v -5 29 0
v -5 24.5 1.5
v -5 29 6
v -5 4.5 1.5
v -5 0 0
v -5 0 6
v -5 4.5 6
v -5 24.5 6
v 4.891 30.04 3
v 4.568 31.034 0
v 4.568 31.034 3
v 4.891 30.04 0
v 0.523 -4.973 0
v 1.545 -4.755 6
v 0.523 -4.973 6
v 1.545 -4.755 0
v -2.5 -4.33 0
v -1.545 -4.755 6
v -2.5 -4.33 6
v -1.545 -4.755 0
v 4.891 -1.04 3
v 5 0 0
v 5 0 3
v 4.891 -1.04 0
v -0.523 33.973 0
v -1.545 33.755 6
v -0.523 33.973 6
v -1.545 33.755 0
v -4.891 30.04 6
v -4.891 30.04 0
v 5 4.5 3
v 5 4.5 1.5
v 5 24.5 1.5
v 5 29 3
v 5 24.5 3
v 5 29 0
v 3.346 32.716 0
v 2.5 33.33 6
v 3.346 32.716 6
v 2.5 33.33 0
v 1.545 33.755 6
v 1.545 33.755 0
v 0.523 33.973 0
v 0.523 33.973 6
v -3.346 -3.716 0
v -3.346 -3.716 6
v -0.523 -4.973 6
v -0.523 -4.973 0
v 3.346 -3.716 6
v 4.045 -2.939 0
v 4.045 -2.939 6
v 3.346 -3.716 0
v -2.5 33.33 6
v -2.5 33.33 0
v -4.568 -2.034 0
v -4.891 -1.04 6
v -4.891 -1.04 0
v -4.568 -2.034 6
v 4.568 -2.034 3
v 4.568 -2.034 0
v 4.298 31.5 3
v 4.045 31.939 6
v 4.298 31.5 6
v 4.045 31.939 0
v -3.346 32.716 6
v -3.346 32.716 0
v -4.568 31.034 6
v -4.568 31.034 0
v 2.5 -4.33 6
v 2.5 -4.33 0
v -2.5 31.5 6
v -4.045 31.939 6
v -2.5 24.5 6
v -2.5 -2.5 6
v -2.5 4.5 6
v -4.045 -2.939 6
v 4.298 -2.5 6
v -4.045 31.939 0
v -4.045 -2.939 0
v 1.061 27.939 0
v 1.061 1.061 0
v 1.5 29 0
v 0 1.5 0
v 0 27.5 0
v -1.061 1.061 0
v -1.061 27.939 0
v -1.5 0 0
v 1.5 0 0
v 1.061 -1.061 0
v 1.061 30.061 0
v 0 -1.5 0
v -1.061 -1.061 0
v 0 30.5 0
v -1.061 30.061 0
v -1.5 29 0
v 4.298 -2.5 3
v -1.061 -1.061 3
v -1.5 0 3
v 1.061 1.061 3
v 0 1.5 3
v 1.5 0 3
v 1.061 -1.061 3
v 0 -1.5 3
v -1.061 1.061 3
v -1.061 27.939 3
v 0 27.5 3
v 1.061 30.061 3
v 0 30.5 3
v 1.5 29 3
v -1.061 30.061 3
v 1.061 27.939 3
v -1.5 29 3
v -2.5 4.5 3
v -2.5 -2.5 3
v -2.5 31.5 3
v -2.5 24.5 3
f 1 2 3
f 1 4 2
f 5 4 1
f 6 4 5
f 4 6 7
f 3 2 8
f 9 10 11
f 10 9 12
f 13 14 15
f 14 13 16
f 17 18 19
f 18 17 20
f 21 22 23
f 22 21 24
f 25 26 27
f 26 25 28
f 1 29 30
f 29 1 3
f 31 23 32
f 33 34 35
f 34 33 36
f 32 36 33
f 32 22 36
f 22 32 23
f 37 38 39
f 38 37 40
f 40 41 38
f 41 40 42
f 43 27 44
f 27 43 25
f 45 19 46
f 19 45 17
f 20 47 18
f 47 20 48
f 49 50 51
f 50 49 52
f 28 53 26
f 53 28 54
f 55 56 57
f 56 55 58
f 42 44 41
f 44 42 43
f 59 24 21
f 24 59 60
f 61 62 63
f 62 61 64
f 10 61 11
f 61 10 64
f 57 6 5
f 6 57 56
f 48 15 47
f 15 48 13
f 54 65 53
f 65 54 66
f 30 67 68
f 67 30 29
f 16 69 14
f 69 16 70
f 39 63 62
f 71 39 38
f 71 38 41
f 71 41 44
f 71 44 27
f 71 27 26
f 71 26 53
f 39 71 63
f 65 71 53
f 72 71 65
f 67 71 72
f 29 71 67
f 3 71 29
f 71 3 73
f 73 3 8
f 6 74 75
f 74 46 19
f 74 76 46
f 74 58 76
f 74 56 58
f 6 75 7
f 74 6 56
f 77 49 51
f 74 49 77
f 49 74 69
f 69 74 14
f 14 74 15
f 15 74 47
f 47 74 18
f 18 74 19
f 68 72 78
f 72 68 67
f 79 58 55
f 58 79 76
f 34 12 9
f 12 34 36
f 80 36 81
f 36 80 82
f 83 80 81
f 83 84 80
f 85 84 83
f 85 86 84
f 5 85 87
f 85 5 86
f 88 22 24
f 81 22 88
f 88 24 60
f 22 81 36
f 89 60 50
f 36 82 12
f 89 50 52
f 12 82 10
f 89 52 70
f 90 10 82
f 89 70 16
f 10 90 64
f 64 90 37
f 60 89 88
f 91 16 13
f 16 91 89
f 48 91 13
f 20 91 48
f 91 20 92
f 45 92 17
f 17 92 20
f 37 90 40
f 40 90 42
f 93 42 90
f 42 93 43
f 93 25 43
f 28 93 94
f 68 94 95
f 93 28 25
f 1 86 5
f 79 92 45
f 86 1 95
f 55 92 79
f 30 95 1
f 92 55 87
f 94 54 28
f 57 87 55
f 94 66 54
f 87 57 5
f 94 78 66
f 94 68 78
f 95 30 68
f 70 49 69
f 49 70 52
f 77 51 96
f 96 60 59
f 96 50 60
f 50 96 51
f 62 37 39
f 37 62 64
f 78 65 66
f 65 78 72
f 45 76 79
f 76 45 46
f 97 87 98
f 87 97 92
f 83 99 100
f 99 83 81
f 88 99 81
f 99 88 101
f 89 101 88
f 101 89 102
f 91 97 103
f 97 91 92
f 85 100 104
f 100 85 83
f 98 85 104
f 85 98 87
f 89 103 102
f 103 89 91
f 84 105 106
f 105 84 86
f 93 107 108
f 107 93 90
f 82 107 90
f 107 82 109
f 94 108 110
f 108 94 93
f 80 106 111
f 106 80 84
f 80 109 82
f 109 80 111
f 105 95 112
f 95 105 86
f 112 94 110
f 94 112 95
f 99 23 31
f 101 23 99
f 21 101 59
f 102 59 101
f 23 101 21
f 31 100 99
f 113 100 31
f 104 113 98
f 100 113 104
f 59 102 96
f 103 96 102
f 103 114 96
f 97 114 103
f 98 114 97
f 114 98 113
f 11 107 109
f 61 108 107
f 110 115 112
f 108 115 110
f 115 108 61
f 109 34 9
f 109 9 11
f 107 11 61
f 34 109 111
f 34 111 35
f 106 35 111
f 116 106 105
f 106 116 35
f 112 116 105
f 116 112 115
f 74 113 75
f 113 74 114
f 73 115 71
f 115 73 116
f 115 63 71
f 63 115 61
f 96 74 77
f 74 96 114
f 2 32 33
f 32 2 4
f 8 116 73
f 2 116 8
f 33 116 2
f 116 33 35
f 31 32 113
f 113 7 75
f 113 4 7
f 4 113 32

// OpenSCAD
oled_back();

module oled_back() {
    led_t=3;
    spt_t=6;
    difference() {
        hull() {
            cylinder(spt_t,10/2,10/2,$fn=30);
            translate([0,29,0]) cylinder(spt_t,10/2,10/2,$fn=30);
        }
        translate([0,0,-0.5])cylinder(spt_t+1,3/2,3/2,$fn=8);
        translate([0,29,-0.5]) cylinder(spt_t+1,3/2,3/2,$fn=8);
        
        translate([-2.5,-2.5,spt_t-led_t]) cube(34);
        translate([-2.5-3.5,-2.5+7,spt_t-led_t-1.5]) cube(20);
    }
}


module oled_front() {
    hw=33.8-3;
    hh=32-3;
    
    translate([-hw/2,0,0]) union() {
        cylinder(h=20, r=3.2/2, center=true, $fn=20);
        translate([hw, hh, 0]) cylinder(h=20, r=3.2/2, center=true, $fn=20);
        translate([hw, 0, 0]) cylinder(h=20, r=3.2/2, center=true, $fn=20);
        translate([0, hh, 0]) cylinder(h=20, r=3.2/2, center=true, $fn=20);
    }
    translate([-32/2,4,-10]) cube([32,17,20]);
}

module usb_c(){
    rotate([0,90,0]) union() {
        cube([13.5,5.5,20], center=true);
        cube([14,3.5,20], center=true);        
    }
}

module rotary_encoder() {
    rotate([0,90,0]) cylinder(h=20, r=7/2, center=true, $fn=20);
}

module shutter_jack() {
    rotate([0,90,0]) cylinder(h=20, r=7.2/2, center=true, $fn=20);
}

module switch() {
    rotate([0,90,0]) cylinder(h=20, r=6/2, center=true, $fn=20);
}

module pcb() {
    w=45;
    h=35;
    
    support(3,8);
    translate([w,h,0]) support(3,8);
    translate([0,h,0])support(3,8);
    translate([w,0,0])support(3,8);
}

module support(p,h) {
    difference() {
        cylinder(h=h, r=(p+3)/2);
        translate([0,0,-1]) cylinder(h=h+2, r=p/2);
    }
}
